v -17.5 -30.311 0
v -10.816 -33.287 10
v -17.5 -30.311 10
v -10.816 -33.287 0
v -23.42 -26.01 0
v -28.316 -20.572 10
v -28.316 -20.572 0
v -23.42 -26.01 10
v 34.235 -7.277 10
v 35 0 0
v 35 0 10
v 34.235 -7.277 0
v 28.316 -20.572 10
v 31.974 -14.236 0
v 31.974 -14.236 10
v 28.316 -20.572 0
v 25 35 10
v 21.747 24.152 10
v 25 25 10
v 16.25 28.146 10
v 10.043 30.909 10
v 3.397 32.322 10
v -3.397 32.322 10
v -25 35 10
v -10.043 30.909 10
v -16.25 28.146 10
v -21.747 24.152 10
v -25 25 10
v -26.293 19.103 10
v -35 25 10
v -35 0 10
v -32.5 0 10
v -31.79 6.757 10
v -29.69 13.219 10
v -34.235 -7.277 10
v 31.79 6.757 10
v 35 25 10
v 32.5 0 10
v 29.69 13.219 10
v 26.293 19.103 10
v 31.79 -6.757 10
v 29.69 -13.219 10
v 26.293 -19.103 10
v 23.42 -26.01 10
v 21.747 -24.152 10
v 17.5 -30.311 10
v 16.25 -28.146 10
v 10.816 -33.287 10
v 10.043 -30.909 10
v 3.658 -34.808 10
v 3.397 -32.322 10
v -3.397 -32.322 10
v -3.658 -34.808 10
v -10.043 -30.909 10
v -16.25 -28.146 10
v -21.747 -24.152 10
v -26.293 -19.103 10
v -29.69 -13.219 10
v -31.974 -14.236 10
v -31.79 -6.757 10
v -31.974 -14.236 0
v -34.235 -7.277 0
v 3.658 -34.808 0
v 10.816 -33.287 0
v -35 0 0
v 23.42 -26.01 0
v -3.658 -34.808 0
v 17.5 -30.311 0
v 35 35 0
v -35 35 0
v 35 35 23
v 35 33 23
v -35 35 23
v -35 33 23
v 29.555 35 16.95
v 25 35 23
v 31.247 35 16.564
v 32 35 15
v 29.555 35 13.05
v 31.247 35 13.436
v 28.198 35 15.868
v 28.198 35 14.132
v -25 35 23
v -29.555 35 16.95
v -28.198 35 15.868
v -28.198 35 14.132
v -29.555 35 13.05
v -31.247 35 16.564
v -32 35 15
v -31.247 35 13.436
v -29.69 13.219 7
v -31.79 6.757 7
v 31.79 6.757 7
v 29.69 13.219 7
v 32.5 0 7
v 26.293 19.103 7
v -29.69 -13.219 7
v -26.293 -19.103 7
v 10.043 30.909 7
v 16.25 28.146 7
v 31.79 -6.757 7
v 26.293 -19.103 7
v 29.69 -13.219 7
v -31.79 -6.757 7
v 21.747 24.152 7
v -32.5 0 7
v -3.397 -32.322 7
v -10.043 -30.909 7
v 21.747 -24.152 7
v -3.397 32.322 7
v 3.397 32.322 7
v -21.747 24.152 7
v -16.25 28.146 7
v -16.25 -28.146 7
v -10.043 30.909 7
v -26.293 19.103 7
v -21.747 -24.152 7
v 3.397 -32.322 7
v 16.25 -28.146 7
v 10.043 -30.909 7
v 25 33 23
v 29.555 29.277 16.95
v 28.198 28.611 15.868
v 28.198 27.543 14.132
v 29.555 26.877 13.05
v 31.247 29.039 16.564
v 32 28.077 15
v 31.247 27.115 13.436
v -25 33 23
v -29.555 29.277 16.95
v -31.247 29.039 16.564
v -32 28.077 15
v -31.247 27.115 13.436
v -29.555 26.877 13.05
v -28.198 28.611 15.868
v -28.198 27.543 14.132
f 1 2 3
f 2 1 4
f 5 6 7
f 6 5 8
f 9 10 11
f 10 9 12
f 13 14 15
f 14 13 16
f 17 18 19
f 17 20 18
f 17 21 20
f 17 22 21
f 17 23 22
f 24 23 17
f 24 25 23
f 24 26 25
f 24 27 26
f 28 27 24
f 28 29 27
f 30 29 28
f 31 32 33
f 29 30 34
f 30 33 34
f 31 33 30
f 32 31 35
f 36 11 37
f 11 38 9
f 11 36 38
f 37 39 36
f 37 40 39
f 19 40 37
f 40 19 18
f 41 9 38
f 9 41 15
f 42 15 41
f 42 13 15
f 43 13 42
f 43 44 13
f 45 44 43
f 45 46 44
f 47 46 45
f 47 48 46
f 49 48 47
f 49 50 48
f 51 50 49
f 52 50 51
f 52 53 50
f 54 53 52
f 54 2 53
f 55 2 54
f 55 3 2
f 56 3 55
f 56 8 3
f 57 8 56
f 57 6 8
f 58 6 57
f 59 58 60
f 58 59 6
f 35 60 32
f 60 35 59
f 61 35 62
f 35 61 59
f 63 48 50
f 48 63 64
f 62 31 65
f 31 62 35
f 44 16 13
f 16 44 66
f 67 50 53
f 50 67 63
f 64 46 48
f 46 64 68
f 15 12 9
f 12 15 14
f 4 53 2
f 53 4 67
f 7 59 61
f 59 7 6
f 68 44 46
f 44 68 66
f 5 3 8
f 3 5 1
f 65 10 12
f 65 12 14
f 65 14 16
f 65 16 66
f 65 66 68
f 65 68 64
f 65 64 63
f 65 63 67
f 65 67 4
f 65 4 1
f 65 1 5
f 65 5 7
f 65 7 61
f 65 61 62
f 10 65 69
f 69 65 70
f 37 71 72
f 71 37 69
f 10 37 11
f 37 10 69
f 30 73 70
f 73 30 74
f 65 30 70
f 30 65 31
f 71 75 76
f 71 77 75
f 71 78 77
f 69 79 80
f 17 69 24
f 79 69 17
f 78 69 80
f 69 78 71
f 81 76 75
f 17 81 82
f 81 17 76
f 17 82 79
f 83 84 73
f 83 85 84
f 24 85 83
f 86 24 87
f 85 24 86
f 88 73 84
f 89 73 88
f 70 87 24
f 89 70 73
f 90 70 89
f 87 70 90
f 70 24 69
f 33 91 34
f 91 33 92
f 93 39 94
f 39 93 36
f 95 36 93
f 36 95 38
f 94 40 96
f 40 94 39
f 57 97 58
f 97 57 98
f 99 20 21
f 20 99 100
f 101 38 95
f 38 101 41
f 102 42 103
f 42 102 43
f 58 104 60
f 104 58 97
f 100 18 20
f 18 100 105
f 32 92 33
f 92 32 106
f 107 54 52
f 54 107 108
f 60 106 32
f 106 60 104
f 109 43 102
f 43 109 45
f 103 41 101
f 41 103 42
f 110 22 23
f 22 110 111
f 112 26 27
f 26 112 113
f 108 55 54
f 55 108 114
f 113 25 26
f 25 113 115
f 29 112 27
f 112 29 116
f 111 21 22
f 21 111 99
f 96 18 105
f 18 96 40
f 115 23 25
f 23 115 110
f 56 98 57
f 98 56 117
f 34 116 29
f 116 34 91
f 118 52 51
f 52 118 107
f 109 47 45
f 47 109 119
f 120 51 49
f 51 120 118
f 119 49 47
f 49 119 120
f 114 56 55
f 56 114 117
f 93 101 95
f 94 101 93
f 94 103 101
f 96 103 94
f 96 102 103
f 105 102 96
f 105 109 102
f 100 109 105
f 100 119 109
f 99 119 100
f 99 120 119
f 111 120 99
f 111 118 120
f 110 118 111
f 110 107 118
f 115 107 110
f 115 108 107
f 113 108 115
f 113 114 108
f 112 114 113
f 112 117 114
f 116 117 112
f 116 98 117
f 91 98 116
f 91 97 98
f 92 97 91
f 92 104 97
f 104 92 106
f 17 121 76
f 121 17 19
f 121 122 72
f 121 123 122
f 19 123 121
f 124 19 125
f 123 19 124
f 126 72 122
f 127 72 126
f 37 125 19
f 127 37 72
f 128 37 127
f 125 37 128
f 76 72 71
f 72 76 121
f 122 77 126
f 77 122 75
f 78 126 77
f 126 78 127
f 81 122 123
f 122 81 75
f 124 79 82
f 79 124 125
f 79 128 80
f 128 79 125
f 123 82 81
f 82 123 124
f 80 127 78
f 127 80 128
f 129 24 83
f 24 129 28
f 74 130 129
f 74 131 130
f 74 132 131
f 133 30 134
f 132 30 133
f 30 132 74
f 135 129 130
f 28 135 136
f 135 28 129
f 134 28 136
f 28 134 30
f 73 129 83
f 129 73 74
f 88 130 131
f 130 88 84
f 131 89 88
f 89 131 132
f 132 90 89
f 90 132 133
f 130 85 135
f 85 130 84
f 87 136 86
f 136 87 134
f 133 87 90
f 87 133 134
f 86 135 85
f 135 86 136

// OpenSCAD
difference(){
union(){
cylinder(d=70,h=10);
translate([-70/2,0,0])
cube([70,70/2,10]);
}
translate([0,0,7])
cylinder(d=65,h=10);
}
difference(){
translate([70/2,70/2,10-2])
rotate([0,0,180])
hull(){
cube([10,2,15]);
cube([10,10,2]);
}
translate([70/2-5,70/2+5,15])
rotate([90,0,0])
cylinder(d=4,h=20);
}
mirror([1,0,0])
difference(){
translate([70/2,70/2,10-2])
rotate([0,0,180])
hull(){
cube([10,2,15]);
cube([10,10,2]);
}
translate([70/2-5,70/2+5,15])
rotate([90,0,0])
cylinder(d=4,h=20);
}
